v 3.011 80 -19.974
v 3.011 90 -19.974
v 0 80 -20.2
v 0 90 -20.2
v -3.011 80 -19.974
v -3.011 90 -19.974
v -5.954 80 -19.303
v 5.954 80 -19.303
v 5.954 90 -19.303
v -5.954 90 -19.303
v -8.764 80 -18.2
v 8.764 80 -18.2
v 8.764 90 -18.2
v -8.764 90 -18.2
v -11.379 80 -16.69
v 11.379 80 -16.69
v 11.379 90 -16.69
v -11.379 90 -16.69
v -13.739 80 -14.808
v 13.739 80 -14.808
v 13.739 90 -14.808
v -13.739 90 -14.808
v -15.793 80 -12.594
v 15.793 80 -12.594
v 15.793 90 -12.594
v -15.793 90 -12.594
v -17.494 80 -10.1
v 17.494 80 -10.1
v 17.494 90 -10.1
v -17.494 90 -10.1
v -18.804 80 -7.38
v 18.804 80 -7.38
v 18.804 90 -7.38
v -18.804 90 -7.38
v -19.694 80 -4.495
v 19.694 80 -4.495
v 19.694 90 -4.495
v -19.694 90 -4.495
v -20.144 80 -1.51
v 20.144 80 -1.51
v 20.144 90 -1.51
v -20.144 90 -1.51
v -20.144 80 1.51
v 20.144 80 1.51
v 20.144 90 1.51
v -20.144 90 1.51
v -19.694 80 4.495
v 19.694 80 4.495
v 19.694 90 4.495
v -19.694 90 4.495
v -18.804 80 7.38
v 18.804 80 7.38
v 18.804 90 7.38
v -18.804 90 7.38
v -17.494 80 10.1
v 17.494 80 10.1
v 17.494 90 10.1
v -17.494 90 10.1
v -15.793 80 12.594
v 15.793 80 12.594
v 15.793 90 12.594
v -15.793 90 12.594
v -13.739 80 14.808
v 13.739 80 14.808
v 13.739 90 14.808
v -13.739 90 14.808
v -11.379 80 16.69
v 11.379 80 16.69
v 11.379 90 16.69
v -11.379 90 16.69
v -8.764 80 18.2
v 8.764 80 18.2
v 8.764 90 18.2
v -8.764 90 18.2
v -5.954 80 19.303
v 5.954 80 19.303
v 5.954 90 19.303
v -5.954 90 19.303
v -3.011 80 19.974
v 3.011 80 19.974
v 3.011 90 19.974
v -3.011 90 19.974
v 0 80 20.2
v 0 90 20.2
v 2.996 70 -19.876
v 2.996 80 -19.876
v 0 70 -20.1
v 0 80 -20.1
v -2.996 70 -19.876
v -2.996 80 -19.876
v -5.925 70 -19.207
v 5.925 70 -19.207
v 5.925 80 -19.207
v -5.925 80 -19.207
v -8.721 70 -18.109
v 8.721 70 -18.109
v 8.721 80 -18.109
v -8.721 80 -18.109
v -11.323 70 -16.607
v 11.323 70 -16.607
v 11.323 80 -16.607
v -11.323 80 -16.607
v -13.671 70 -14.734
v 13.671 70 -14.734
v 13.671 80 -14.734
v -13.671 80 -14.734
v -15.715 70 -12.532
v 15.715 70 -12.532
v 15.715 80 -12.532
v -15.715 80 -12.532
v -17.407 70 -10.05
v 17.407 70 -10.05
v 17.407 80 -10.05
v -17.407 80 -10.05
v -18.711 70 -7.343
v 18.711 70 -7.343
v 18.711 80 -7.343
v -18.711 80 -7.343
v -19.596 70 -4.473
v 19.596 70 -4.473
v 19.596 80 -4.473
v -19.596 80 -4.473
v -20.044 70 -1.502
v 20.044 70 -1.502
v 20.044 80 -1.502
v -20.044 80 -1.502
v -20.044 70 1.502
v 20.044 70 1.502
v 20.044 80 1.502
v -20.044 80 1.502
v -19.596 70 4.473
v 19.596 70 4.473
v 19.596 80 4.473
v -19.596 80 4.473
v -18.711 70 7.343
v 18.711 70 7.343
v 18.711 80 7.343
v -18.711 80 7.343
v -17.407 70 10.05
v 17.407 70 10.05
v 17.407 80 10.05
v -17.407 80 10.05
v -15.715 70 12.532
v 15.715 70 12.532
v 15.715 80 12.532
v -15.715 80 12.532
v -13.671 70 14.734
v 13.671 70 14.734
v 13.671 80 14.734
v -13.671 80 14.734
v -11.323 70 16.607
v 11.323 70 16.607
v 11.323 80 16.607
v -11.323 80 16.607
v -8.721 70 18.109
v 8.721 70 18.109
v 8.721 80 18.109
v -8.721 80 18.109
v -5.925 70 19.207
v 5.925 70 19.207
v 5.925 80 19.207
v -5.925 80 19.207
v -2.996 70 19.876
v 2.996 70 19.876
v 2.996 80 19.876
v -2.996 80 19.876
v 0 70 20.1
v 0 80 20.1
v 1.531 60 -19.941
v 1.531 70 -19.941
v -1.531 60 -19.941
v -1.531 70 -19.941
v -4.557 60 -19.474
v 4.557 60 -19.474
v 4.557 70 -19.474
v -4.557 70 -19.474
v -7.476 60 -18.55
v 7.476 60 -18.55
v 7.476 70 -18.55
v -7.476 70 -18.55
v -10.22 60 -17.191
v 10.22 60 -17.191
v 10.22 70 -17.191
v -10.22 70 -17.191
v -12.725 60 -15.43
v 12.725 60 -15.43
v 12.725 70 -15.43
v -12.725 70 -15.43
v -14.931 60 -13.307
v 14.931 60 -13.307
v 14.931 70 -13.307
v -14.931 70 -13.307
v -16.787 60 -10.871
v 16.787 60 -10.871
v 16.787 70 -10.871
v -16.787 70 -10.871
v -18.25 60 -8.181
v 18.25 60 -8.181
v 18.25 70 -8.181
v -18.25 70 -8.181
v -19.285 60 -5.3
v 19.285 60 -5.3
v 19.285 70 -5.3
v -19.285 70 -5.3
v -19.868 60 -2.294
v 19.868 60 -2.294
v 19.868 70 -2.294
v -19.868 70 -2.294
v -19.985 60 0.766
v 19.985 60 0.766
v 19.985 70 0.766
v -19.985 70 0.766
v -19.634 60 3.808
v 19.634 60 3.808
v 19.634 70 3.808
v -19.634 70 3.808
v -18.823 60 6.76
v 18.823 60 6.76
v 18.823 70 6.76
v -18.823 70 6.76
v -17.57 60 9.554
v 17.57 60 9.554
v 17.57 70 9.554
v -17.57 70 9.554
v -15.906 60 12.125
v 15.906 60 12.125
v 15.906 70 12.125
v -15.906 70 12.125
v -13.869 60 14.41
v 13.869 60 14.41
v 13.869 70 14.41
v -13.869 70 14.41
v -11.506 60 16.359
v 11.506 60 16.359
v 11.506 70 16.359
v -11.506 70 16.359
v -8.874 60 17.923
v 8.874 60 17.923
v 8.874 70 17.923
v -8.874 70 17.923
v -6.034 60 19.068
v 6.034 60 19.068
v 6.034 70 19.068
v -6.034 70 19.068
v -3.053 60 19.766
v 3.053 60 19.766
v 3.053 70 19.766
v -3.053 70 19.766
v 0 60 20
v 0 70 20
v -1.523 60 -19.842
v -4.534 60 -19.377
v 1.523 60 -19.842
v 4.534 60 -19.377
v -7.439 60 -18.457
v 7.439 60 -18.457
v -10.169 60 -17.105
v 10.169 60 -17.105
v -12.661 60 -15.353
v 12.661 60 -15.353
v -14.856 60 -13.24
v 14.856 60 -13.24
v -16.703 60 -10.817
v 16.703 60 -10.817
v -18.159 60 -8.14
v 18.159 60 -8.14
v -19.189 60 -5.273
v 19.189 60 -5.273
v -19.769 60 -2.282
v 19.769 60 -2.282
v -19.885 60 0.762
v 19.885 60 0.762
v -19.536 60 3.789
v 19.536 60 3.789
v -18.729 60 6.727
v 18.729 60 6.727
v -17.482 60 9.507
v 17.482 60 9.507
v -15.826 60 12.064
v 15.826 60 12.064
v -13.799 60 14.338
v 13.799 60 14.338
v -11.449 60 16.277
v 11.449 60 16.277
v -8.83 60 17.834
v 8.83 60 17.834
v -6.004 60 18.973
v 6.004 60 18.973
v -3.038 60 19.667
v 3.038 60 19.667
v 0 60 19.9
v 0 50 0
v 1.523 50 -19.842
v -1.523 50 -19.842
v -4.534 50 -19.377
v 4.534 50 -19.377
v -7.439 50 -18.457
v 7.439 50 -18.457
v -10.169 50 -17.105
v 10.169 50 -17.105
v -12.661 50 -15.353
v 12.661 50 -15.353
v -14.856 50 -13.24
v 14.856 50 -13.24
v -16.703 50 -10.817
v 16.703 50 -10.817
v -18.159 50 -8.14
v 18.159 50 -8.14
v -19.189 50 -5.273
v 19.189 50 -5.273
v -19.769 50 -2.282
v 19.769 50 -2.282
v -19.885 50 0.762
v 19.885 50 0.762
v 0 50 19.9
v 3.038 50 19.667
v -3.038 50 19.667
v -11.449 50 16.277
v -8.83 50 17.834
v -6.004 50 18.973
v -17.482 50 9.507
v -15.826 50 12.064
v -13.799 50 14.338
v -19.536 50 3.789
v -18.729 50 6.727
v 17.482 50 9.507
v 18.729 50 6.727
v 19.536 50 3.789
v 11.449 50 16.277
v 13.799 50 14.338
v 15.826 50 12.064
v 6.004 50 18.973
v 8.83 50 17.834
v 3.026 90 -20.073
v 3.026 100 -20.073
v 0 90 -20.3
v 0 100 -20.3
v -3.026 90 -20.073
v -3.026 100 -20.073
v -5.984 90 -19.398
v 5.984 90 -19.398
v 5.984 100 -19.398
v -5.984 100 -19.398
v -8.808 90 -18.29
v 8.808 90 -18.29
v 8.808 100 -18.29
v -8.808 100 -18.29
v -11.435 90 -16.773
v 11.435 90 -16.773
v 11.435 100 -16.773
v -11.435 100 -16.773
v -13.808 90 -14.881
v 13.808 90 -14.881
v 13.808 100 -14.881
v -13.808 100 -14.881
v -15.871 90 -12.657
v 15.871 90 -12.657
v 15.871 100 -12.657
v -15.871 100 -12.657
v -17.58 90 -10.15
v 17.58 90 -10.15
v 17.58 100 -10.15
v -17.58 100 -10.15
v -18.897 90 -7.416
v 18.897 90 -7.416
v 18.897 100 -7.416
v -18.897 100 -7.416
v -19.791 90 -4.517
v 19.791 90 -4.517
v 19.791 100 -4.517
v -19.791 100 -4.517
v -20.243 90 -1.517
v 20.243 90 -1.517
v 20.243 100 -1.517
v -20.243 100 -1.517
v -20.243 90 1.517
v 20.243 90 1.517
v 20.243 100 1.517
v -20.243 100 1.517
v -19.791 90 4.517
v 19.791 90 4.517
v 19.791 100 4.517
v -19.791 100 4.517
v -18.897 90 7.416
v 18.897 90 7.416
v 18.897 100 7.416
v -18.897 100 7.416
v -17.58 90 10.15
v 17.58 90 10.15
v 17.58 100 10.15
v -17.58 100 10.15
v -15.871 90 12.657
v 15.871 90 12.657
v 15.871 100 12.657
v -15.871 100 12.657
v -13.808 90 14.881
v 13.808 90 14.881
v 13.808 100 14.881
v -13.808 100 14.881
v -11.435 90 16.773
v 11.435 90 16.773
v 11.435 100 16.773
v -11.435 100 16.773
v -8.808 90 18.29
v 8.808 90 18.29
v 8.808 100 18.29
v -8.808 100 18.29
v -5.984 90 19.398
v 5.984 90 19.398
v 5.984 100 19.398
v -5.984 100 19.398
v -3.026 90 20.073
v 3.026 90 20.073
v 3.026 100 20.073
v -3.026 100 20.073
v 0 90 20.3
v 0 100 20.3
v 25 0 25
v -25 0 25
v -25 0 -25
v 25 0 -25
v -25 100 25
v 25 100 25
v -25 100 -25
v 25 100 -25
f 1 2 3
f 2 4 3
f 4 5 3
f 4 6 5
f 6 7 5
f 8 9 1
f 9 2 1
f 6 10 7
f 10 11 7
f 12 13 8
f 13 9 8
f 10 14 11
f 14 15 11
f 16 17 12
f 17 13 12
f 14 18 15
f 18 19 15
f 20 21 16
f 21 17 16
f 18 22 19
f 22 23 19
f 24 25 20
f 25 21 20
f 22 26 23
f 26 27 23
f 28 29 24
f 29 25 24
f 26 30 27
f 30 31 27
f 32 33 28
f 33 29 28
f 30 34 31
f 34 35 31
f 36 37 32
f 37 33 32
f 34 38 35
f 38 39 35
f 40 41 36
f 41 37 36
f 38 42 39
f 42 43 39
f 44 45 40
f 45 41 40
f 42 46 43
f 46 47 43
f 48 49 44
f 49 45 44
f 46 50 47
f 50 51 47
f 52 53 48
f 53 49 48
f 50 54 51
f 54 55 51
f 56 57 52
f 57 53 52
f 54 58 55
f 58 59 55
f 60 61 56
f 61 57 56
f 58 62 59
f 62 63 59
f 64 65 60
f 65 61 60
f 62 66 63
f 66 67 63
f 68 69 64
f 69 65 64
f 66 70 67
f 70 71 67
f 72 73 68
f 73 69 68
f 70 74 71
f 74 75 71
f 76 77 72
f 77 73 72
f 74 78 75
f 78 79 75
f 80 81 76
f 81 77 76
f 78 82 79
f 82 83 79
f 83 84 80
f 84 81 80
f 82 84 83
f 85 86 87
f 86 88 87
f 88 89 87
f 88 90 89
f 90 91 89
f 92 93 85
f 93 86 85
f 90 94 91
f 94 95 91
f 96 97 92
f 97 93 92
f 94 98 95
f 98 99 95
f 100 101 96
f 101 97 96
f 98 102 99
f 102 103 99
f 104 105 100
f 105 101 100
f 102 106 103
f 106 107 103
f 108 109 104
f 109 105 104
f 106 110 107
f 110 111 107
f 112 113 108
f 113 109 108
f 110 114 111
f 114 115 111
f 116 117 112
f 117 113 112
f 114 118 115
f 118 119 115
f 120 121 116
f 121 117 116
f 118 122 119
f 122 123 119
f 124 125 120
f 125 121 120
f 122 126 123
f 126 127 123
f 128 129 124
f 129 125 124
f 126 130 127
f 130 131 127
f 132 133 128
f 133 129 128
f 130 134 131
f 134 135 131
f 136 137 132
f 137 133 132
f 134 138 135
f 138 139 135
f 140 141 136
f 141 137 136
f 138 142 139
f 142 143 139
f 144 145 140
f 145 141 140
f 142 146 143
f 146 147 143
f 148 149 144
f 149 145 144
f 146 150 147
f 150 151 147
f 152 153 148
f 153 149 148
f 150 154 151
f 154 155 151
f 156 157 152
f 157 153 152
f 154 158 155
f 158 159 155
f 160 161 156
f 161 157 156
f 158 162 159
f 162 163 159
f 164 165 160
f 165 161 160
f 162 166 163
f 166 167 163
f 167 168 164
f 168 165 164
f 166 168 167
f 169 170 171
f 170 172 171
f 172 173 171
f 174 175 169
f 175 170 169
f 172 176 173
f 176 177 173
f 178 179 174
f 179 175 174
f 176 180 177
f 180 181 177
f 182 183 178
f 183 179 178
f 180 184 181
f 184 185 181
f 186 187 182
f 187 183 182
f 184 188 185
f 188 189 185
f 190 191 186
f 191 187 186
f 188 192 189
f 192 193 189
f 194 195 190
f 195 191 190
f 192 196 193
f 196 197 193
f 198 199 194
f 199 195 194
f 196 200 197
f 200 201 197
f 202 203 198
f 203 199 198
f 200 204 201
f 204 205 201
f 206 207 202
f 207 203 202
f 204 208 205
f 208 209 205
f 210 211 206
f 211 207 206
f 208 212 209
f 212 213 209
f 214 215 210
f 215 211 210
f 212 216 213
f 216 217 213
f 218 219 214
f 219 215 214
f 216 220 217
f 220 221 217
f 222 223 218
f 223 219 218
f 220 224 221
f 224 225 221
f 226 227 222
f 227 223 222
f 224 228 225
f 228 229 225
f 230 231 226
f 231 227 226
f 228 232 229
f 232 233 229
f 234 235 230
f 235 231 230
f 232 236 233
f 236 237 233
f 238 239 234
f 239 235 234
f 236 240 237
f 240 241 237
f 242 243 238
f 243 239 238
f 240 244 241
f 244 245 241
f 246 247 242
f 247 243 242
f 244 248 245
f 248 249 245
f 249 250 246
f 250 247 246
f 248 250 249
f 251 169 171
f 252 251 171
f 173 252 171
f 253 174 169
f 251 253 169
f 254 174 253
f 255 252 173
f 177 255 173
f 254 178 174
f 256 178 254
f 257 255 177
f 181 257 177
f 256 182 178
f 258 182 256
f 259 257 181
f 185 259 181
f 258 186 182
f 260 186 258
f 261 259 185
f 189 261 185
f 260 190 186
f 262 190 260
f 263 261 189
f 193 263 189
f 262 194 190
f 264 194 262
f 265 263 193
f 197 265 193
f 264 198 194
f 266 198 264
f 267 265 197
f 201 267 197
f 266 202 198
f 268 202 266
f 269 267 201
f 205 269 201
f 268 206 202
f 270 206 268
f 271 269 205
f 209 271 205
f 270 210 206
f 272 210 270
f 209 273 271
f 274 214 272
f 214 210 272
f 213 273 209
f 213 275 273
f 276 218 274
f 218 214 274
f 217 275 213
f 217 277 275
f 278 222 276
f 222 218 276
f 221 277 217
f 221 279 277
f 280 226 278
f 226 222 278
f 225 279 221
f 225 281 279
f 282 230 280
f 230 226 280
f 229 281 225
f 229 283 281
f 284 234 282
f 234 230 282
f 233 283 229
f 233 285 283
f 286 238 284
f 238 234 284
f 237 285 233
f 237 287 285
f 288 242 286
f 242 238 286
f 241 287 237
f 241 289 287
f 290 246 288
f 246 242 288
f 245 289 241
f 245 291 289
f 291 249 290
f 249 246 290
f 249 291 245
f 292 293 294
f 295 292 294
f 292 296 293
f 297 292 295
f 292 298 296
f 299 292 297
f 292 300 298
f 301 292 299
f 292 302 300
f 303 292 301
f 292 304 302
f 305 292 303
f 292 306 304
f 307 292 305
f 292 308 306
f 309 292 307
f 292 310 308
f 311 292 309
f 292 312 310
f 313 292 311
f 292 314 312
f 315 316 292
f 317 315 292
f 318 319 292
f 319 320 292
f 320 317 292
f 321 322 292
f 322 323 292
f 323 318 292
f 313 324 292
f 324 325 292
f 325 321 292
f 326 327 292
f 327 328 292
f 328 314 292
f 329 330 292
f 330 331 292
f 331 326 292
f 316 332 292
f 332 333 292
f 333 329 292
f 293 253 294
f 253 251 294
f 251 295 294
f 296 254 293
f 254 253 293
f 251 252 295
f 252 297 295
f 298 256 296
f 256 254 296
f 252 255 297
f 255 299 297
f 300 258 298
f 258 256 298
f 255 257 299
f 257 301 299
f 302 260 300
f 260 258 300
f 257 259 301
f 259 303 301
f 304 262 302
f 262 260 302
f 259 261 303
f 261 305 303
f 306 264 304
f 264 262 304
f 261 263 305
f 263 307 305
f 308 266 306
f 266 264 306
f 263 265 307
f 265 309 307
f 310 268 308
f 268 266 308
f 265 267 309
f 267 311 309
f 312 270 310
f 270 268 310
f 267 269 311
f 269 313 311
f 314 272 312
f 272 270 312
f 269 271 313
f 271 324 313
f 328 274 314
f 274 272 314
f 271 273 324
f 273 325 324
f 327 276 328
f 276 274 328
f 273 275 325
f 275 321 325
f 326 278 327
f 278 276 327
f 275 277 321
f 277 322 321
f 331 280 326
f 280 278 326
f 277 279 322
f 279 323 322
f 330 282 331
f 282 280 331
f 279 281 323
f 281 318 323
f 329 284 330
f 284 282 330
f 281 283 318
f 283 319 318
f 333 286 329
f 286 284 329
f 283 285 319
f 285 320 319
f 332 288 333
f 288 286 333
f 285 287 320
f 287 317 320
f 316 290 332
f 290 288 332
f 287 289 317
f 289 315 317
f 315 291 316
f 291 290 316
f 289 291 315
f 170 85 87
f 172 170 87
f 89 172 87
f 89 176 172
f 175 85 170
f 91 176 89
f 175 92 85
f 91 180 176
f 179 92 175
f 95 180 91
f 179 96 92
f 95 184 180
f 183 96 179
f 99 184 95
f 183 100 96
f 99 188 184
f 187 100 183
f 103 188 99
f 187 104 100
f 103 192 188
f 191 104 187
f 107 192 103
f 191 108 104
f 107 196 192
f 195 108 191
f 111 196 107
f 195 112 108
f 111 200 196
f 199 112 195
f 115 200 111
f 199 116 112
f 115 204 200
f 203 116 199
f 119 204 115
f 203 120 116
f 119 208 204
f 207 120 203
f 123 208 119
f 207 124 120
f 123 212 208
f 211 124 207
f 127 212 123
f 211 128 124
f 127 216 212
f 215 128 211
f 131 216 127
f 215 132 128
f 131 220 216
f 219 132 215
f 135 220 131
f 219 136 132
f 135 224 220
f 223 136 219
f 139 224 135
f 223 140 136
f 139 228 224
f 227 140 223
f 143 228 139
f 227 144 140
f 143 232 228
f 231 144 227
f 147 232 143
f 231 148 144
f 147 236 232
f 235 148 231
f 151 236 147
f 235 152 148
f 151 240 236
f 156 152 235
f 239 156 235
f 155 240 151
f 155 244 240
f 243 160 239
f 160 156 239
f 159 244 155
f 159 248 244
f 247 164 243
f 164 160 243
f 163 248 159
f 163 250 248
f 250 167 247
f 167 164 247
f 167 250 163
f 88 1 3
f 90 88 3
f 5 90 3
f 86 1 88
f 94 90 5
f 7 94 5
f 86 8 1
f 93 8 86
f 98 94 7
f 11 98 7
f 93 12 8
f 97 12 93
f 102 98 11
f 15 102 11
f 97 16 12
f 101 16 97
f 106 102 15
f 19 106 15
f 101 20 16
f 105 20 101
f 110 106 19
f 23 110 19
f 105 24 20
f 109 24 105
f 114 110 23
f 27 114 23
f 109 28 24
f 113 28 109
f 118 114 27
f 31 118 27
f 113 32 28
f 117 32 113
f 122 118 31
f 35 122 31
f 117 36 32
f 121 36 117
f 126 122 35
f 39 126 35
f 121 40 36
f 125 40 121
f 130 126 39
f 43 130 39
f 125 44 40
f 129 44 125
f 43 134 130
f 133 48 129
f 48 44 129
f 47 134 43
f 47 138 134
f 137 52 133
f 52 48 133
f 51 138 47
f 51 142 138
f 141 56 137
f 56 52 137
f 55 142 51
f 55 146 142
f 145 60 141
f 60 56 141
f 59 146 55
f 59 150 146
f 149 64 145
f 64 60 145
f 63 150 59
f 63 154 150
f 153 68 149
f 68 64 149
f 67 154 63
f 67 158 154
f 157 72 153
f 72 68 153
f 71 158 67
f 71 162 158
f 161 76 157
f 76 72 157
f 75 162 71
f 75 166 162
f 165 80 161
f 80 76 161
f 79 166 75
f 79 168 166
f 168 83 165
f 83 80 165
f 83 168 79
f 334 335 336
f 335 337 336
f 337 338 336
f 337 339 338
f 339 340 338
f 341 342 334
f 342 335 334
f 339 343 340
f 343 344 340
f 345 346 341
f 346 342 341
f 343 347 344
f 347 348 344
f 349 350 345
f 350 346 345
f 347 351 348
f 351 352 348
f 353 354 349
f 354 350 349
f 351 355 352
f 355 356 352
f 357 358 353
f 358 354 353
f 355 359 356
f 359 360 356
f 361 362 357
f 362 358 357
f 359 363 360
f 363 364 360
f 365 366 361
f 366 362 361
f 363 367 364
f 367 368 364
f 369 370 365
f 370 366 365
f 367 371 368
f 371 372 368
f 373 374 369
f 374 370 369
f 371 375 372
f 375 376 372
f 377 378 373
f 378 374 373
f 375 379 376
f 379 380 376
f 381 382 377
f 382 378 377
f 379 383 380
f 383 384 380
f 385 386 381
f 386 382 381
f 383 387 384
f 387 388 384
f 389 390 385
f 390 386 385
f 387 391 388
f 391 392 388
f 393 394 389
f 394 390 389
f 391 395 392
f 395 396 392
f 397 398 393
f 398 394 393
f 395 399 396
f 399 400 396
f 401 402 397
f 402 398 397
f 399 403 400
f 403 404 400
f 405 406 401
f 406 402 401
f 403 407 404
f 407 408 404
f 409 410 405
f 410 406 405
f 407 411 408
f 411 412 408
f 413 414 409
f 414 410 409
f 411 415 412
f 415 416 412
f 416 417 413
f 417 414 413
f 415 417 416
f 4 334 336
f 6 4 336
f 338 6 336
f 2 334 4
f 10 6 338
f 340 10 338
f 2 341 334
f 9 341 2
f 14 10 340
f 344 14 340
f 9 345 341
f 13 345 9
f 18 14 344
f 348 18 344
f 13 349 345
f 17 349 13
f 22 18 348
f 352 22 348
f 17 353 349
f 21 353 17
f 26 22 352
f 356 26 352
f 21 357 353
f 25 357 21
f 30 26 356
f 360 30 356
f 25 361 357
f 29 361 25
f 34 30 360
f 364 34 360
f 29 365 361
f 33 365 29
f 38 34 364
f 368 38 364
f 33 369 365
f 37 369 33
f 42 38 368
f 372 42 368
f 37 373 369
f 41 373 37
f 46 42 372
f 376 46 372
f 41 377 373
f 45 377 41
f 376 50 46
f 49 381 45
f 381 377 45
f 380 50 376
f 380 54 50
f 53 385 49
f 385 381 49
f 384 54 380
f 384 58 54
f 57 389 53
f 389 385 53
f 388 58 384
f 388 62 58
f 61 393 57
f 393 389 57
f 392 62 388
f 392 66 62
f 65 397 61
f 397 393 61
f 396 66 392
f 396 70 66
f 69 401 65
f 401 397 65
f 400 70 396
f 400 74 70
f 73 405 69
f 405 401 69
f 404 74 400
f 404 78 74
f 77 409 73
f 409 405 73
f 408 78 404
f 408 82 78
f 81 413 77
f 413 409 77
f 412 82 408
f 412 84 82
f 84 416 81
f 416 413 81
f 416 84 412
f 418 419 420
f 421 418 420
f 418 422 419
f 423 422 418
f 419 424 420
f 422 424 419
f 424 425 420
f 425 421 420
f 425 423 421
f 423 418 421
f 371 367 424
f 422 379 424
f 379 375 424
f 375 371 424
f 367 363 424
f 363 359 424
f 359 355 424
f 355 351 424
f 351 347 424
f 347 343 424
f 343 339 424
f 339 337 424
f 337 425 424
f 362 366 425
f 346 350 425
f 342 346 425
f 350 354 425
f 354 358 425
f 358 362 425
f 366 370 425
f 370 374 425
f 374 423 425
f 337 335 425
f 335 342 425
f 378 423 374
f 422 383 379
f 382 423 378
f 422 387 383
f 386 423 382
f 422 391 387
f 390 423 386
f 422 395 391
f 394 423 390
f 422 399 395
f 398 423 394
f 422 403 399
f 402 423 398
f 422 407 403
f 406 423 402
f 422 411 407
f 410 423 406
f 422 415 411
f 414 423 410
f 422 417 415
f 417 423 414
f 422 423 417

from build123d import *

# Parameters (mm, degrees)
SKETCH1_W           = 50
SKETCH1_H           = 50
BOSS_EXTRUDE1_DEPTH = 100
SKETCH2_R           = 19.9
CUT_EXTRUDE2_DEPTH  = 50
SKETCH2_5_R         = 20
SKETCH2_5_R_2       = 19.9
CUT_EXTRUDE3_DEPTH  = 40
SKETCH2_6_R         = 20.1
SKETCH2_6_R_2       = 20
CUT_EXTRUDE4_DEPTH  = 30
SKETCH2_7_R         = 20.2
SKETCH2_7_R_2       = 20.1
CUT_EXTRUDE5_DEPTH  = 20
SKETCH2_8_R         = 20.3
SKETCH2_8_R_2       = 20.2
CUT_EXTRUDE6_DEPTH  = 10


with BuildPart() as part:
    # Sketch1 → Boss-Extrude1 (new body)
    with BuildSketch(Plane(origin=(0, 0, 0), x_dir=(1, 0, 0), z_dir=(0, 1, 0))):
        Rectangle(SKETCH1_W, SKETCH1_H)
    extrude(amount=BOSS_EXTRUDE1_DEPTH)

    # Sketch2 → Cut-Extrude2 (cut)
    with BuildSketch(Plane(origin=(0, 100, 0), x_dir=(1, 0, 0), z_dir=(0, 1, 0))):
        Circle(SKETCH2_R)
    extrude(amount=-CUT_EXTRUDE2_DEPTH, mode=Mode.SUBTRACT)

    # Sketch2<5> → Cut-Extrude3 (cut)
    with BuildSketch(Plane(origin=(0, 100, 0), x_dir=(1, 0, 0), z_dir=(0, 1, 0))):
        Circle(SKETCH2_5_R)
        Circle(SKETCH2_5_R_2, mode=Mode.SUBTRACT)
    extrude(amount=-CUT_EXTRUDE3_DEPTH, mode=Mode.SUBTRACT)

    # Sketch2<6> → Cut-Extrude4 (cut)
    with BuildSketch(Plane(origin=(0, 100, 0), x_dir=(1, 0, 0), z_dir=(0, 1, 0))):
        Circle(SKETCH2_6_R)
        Circle(SKETCH2_6_R_2, mode=Mode.SUBTRACT)
    extrude(amount=-CUT_EXTRUDE4_DEPTH, mode=Mode.SUBTRACT)

    # Sketch2<7> → Cut-Extrude5 (cut)
    with BuildSketch(Plane(origin=(0, 100, 0), x_dir=(1, 0, 0), z_dir=(0, 1, 0))):
        Circle(SKETCH2_7_R)
        Circle(SKETCH2_7_R_2, mode=Mode.SUBTRACT)
    extrude(amount=-CUT_EXTRUDE5_DEPTH, mode=Mode.SUBTRACT)

    # Sketch2<8> → Cut-Extrude6 (cut)
    with BuildSketch(Plane(origin=(0, 100, 0), x_dir=(1, 0, 0), z_dir=(0, 1, 0))):
        Circle(SKETCH2_8_R)
        Circle(SKETCH2_8_R_2, mode=Mode.SUBTRACT)
    extrude(amount=-CUT_EXTRUDE6_DEPTH, mode=Mode.SUBTRACT)


solid = part.part
